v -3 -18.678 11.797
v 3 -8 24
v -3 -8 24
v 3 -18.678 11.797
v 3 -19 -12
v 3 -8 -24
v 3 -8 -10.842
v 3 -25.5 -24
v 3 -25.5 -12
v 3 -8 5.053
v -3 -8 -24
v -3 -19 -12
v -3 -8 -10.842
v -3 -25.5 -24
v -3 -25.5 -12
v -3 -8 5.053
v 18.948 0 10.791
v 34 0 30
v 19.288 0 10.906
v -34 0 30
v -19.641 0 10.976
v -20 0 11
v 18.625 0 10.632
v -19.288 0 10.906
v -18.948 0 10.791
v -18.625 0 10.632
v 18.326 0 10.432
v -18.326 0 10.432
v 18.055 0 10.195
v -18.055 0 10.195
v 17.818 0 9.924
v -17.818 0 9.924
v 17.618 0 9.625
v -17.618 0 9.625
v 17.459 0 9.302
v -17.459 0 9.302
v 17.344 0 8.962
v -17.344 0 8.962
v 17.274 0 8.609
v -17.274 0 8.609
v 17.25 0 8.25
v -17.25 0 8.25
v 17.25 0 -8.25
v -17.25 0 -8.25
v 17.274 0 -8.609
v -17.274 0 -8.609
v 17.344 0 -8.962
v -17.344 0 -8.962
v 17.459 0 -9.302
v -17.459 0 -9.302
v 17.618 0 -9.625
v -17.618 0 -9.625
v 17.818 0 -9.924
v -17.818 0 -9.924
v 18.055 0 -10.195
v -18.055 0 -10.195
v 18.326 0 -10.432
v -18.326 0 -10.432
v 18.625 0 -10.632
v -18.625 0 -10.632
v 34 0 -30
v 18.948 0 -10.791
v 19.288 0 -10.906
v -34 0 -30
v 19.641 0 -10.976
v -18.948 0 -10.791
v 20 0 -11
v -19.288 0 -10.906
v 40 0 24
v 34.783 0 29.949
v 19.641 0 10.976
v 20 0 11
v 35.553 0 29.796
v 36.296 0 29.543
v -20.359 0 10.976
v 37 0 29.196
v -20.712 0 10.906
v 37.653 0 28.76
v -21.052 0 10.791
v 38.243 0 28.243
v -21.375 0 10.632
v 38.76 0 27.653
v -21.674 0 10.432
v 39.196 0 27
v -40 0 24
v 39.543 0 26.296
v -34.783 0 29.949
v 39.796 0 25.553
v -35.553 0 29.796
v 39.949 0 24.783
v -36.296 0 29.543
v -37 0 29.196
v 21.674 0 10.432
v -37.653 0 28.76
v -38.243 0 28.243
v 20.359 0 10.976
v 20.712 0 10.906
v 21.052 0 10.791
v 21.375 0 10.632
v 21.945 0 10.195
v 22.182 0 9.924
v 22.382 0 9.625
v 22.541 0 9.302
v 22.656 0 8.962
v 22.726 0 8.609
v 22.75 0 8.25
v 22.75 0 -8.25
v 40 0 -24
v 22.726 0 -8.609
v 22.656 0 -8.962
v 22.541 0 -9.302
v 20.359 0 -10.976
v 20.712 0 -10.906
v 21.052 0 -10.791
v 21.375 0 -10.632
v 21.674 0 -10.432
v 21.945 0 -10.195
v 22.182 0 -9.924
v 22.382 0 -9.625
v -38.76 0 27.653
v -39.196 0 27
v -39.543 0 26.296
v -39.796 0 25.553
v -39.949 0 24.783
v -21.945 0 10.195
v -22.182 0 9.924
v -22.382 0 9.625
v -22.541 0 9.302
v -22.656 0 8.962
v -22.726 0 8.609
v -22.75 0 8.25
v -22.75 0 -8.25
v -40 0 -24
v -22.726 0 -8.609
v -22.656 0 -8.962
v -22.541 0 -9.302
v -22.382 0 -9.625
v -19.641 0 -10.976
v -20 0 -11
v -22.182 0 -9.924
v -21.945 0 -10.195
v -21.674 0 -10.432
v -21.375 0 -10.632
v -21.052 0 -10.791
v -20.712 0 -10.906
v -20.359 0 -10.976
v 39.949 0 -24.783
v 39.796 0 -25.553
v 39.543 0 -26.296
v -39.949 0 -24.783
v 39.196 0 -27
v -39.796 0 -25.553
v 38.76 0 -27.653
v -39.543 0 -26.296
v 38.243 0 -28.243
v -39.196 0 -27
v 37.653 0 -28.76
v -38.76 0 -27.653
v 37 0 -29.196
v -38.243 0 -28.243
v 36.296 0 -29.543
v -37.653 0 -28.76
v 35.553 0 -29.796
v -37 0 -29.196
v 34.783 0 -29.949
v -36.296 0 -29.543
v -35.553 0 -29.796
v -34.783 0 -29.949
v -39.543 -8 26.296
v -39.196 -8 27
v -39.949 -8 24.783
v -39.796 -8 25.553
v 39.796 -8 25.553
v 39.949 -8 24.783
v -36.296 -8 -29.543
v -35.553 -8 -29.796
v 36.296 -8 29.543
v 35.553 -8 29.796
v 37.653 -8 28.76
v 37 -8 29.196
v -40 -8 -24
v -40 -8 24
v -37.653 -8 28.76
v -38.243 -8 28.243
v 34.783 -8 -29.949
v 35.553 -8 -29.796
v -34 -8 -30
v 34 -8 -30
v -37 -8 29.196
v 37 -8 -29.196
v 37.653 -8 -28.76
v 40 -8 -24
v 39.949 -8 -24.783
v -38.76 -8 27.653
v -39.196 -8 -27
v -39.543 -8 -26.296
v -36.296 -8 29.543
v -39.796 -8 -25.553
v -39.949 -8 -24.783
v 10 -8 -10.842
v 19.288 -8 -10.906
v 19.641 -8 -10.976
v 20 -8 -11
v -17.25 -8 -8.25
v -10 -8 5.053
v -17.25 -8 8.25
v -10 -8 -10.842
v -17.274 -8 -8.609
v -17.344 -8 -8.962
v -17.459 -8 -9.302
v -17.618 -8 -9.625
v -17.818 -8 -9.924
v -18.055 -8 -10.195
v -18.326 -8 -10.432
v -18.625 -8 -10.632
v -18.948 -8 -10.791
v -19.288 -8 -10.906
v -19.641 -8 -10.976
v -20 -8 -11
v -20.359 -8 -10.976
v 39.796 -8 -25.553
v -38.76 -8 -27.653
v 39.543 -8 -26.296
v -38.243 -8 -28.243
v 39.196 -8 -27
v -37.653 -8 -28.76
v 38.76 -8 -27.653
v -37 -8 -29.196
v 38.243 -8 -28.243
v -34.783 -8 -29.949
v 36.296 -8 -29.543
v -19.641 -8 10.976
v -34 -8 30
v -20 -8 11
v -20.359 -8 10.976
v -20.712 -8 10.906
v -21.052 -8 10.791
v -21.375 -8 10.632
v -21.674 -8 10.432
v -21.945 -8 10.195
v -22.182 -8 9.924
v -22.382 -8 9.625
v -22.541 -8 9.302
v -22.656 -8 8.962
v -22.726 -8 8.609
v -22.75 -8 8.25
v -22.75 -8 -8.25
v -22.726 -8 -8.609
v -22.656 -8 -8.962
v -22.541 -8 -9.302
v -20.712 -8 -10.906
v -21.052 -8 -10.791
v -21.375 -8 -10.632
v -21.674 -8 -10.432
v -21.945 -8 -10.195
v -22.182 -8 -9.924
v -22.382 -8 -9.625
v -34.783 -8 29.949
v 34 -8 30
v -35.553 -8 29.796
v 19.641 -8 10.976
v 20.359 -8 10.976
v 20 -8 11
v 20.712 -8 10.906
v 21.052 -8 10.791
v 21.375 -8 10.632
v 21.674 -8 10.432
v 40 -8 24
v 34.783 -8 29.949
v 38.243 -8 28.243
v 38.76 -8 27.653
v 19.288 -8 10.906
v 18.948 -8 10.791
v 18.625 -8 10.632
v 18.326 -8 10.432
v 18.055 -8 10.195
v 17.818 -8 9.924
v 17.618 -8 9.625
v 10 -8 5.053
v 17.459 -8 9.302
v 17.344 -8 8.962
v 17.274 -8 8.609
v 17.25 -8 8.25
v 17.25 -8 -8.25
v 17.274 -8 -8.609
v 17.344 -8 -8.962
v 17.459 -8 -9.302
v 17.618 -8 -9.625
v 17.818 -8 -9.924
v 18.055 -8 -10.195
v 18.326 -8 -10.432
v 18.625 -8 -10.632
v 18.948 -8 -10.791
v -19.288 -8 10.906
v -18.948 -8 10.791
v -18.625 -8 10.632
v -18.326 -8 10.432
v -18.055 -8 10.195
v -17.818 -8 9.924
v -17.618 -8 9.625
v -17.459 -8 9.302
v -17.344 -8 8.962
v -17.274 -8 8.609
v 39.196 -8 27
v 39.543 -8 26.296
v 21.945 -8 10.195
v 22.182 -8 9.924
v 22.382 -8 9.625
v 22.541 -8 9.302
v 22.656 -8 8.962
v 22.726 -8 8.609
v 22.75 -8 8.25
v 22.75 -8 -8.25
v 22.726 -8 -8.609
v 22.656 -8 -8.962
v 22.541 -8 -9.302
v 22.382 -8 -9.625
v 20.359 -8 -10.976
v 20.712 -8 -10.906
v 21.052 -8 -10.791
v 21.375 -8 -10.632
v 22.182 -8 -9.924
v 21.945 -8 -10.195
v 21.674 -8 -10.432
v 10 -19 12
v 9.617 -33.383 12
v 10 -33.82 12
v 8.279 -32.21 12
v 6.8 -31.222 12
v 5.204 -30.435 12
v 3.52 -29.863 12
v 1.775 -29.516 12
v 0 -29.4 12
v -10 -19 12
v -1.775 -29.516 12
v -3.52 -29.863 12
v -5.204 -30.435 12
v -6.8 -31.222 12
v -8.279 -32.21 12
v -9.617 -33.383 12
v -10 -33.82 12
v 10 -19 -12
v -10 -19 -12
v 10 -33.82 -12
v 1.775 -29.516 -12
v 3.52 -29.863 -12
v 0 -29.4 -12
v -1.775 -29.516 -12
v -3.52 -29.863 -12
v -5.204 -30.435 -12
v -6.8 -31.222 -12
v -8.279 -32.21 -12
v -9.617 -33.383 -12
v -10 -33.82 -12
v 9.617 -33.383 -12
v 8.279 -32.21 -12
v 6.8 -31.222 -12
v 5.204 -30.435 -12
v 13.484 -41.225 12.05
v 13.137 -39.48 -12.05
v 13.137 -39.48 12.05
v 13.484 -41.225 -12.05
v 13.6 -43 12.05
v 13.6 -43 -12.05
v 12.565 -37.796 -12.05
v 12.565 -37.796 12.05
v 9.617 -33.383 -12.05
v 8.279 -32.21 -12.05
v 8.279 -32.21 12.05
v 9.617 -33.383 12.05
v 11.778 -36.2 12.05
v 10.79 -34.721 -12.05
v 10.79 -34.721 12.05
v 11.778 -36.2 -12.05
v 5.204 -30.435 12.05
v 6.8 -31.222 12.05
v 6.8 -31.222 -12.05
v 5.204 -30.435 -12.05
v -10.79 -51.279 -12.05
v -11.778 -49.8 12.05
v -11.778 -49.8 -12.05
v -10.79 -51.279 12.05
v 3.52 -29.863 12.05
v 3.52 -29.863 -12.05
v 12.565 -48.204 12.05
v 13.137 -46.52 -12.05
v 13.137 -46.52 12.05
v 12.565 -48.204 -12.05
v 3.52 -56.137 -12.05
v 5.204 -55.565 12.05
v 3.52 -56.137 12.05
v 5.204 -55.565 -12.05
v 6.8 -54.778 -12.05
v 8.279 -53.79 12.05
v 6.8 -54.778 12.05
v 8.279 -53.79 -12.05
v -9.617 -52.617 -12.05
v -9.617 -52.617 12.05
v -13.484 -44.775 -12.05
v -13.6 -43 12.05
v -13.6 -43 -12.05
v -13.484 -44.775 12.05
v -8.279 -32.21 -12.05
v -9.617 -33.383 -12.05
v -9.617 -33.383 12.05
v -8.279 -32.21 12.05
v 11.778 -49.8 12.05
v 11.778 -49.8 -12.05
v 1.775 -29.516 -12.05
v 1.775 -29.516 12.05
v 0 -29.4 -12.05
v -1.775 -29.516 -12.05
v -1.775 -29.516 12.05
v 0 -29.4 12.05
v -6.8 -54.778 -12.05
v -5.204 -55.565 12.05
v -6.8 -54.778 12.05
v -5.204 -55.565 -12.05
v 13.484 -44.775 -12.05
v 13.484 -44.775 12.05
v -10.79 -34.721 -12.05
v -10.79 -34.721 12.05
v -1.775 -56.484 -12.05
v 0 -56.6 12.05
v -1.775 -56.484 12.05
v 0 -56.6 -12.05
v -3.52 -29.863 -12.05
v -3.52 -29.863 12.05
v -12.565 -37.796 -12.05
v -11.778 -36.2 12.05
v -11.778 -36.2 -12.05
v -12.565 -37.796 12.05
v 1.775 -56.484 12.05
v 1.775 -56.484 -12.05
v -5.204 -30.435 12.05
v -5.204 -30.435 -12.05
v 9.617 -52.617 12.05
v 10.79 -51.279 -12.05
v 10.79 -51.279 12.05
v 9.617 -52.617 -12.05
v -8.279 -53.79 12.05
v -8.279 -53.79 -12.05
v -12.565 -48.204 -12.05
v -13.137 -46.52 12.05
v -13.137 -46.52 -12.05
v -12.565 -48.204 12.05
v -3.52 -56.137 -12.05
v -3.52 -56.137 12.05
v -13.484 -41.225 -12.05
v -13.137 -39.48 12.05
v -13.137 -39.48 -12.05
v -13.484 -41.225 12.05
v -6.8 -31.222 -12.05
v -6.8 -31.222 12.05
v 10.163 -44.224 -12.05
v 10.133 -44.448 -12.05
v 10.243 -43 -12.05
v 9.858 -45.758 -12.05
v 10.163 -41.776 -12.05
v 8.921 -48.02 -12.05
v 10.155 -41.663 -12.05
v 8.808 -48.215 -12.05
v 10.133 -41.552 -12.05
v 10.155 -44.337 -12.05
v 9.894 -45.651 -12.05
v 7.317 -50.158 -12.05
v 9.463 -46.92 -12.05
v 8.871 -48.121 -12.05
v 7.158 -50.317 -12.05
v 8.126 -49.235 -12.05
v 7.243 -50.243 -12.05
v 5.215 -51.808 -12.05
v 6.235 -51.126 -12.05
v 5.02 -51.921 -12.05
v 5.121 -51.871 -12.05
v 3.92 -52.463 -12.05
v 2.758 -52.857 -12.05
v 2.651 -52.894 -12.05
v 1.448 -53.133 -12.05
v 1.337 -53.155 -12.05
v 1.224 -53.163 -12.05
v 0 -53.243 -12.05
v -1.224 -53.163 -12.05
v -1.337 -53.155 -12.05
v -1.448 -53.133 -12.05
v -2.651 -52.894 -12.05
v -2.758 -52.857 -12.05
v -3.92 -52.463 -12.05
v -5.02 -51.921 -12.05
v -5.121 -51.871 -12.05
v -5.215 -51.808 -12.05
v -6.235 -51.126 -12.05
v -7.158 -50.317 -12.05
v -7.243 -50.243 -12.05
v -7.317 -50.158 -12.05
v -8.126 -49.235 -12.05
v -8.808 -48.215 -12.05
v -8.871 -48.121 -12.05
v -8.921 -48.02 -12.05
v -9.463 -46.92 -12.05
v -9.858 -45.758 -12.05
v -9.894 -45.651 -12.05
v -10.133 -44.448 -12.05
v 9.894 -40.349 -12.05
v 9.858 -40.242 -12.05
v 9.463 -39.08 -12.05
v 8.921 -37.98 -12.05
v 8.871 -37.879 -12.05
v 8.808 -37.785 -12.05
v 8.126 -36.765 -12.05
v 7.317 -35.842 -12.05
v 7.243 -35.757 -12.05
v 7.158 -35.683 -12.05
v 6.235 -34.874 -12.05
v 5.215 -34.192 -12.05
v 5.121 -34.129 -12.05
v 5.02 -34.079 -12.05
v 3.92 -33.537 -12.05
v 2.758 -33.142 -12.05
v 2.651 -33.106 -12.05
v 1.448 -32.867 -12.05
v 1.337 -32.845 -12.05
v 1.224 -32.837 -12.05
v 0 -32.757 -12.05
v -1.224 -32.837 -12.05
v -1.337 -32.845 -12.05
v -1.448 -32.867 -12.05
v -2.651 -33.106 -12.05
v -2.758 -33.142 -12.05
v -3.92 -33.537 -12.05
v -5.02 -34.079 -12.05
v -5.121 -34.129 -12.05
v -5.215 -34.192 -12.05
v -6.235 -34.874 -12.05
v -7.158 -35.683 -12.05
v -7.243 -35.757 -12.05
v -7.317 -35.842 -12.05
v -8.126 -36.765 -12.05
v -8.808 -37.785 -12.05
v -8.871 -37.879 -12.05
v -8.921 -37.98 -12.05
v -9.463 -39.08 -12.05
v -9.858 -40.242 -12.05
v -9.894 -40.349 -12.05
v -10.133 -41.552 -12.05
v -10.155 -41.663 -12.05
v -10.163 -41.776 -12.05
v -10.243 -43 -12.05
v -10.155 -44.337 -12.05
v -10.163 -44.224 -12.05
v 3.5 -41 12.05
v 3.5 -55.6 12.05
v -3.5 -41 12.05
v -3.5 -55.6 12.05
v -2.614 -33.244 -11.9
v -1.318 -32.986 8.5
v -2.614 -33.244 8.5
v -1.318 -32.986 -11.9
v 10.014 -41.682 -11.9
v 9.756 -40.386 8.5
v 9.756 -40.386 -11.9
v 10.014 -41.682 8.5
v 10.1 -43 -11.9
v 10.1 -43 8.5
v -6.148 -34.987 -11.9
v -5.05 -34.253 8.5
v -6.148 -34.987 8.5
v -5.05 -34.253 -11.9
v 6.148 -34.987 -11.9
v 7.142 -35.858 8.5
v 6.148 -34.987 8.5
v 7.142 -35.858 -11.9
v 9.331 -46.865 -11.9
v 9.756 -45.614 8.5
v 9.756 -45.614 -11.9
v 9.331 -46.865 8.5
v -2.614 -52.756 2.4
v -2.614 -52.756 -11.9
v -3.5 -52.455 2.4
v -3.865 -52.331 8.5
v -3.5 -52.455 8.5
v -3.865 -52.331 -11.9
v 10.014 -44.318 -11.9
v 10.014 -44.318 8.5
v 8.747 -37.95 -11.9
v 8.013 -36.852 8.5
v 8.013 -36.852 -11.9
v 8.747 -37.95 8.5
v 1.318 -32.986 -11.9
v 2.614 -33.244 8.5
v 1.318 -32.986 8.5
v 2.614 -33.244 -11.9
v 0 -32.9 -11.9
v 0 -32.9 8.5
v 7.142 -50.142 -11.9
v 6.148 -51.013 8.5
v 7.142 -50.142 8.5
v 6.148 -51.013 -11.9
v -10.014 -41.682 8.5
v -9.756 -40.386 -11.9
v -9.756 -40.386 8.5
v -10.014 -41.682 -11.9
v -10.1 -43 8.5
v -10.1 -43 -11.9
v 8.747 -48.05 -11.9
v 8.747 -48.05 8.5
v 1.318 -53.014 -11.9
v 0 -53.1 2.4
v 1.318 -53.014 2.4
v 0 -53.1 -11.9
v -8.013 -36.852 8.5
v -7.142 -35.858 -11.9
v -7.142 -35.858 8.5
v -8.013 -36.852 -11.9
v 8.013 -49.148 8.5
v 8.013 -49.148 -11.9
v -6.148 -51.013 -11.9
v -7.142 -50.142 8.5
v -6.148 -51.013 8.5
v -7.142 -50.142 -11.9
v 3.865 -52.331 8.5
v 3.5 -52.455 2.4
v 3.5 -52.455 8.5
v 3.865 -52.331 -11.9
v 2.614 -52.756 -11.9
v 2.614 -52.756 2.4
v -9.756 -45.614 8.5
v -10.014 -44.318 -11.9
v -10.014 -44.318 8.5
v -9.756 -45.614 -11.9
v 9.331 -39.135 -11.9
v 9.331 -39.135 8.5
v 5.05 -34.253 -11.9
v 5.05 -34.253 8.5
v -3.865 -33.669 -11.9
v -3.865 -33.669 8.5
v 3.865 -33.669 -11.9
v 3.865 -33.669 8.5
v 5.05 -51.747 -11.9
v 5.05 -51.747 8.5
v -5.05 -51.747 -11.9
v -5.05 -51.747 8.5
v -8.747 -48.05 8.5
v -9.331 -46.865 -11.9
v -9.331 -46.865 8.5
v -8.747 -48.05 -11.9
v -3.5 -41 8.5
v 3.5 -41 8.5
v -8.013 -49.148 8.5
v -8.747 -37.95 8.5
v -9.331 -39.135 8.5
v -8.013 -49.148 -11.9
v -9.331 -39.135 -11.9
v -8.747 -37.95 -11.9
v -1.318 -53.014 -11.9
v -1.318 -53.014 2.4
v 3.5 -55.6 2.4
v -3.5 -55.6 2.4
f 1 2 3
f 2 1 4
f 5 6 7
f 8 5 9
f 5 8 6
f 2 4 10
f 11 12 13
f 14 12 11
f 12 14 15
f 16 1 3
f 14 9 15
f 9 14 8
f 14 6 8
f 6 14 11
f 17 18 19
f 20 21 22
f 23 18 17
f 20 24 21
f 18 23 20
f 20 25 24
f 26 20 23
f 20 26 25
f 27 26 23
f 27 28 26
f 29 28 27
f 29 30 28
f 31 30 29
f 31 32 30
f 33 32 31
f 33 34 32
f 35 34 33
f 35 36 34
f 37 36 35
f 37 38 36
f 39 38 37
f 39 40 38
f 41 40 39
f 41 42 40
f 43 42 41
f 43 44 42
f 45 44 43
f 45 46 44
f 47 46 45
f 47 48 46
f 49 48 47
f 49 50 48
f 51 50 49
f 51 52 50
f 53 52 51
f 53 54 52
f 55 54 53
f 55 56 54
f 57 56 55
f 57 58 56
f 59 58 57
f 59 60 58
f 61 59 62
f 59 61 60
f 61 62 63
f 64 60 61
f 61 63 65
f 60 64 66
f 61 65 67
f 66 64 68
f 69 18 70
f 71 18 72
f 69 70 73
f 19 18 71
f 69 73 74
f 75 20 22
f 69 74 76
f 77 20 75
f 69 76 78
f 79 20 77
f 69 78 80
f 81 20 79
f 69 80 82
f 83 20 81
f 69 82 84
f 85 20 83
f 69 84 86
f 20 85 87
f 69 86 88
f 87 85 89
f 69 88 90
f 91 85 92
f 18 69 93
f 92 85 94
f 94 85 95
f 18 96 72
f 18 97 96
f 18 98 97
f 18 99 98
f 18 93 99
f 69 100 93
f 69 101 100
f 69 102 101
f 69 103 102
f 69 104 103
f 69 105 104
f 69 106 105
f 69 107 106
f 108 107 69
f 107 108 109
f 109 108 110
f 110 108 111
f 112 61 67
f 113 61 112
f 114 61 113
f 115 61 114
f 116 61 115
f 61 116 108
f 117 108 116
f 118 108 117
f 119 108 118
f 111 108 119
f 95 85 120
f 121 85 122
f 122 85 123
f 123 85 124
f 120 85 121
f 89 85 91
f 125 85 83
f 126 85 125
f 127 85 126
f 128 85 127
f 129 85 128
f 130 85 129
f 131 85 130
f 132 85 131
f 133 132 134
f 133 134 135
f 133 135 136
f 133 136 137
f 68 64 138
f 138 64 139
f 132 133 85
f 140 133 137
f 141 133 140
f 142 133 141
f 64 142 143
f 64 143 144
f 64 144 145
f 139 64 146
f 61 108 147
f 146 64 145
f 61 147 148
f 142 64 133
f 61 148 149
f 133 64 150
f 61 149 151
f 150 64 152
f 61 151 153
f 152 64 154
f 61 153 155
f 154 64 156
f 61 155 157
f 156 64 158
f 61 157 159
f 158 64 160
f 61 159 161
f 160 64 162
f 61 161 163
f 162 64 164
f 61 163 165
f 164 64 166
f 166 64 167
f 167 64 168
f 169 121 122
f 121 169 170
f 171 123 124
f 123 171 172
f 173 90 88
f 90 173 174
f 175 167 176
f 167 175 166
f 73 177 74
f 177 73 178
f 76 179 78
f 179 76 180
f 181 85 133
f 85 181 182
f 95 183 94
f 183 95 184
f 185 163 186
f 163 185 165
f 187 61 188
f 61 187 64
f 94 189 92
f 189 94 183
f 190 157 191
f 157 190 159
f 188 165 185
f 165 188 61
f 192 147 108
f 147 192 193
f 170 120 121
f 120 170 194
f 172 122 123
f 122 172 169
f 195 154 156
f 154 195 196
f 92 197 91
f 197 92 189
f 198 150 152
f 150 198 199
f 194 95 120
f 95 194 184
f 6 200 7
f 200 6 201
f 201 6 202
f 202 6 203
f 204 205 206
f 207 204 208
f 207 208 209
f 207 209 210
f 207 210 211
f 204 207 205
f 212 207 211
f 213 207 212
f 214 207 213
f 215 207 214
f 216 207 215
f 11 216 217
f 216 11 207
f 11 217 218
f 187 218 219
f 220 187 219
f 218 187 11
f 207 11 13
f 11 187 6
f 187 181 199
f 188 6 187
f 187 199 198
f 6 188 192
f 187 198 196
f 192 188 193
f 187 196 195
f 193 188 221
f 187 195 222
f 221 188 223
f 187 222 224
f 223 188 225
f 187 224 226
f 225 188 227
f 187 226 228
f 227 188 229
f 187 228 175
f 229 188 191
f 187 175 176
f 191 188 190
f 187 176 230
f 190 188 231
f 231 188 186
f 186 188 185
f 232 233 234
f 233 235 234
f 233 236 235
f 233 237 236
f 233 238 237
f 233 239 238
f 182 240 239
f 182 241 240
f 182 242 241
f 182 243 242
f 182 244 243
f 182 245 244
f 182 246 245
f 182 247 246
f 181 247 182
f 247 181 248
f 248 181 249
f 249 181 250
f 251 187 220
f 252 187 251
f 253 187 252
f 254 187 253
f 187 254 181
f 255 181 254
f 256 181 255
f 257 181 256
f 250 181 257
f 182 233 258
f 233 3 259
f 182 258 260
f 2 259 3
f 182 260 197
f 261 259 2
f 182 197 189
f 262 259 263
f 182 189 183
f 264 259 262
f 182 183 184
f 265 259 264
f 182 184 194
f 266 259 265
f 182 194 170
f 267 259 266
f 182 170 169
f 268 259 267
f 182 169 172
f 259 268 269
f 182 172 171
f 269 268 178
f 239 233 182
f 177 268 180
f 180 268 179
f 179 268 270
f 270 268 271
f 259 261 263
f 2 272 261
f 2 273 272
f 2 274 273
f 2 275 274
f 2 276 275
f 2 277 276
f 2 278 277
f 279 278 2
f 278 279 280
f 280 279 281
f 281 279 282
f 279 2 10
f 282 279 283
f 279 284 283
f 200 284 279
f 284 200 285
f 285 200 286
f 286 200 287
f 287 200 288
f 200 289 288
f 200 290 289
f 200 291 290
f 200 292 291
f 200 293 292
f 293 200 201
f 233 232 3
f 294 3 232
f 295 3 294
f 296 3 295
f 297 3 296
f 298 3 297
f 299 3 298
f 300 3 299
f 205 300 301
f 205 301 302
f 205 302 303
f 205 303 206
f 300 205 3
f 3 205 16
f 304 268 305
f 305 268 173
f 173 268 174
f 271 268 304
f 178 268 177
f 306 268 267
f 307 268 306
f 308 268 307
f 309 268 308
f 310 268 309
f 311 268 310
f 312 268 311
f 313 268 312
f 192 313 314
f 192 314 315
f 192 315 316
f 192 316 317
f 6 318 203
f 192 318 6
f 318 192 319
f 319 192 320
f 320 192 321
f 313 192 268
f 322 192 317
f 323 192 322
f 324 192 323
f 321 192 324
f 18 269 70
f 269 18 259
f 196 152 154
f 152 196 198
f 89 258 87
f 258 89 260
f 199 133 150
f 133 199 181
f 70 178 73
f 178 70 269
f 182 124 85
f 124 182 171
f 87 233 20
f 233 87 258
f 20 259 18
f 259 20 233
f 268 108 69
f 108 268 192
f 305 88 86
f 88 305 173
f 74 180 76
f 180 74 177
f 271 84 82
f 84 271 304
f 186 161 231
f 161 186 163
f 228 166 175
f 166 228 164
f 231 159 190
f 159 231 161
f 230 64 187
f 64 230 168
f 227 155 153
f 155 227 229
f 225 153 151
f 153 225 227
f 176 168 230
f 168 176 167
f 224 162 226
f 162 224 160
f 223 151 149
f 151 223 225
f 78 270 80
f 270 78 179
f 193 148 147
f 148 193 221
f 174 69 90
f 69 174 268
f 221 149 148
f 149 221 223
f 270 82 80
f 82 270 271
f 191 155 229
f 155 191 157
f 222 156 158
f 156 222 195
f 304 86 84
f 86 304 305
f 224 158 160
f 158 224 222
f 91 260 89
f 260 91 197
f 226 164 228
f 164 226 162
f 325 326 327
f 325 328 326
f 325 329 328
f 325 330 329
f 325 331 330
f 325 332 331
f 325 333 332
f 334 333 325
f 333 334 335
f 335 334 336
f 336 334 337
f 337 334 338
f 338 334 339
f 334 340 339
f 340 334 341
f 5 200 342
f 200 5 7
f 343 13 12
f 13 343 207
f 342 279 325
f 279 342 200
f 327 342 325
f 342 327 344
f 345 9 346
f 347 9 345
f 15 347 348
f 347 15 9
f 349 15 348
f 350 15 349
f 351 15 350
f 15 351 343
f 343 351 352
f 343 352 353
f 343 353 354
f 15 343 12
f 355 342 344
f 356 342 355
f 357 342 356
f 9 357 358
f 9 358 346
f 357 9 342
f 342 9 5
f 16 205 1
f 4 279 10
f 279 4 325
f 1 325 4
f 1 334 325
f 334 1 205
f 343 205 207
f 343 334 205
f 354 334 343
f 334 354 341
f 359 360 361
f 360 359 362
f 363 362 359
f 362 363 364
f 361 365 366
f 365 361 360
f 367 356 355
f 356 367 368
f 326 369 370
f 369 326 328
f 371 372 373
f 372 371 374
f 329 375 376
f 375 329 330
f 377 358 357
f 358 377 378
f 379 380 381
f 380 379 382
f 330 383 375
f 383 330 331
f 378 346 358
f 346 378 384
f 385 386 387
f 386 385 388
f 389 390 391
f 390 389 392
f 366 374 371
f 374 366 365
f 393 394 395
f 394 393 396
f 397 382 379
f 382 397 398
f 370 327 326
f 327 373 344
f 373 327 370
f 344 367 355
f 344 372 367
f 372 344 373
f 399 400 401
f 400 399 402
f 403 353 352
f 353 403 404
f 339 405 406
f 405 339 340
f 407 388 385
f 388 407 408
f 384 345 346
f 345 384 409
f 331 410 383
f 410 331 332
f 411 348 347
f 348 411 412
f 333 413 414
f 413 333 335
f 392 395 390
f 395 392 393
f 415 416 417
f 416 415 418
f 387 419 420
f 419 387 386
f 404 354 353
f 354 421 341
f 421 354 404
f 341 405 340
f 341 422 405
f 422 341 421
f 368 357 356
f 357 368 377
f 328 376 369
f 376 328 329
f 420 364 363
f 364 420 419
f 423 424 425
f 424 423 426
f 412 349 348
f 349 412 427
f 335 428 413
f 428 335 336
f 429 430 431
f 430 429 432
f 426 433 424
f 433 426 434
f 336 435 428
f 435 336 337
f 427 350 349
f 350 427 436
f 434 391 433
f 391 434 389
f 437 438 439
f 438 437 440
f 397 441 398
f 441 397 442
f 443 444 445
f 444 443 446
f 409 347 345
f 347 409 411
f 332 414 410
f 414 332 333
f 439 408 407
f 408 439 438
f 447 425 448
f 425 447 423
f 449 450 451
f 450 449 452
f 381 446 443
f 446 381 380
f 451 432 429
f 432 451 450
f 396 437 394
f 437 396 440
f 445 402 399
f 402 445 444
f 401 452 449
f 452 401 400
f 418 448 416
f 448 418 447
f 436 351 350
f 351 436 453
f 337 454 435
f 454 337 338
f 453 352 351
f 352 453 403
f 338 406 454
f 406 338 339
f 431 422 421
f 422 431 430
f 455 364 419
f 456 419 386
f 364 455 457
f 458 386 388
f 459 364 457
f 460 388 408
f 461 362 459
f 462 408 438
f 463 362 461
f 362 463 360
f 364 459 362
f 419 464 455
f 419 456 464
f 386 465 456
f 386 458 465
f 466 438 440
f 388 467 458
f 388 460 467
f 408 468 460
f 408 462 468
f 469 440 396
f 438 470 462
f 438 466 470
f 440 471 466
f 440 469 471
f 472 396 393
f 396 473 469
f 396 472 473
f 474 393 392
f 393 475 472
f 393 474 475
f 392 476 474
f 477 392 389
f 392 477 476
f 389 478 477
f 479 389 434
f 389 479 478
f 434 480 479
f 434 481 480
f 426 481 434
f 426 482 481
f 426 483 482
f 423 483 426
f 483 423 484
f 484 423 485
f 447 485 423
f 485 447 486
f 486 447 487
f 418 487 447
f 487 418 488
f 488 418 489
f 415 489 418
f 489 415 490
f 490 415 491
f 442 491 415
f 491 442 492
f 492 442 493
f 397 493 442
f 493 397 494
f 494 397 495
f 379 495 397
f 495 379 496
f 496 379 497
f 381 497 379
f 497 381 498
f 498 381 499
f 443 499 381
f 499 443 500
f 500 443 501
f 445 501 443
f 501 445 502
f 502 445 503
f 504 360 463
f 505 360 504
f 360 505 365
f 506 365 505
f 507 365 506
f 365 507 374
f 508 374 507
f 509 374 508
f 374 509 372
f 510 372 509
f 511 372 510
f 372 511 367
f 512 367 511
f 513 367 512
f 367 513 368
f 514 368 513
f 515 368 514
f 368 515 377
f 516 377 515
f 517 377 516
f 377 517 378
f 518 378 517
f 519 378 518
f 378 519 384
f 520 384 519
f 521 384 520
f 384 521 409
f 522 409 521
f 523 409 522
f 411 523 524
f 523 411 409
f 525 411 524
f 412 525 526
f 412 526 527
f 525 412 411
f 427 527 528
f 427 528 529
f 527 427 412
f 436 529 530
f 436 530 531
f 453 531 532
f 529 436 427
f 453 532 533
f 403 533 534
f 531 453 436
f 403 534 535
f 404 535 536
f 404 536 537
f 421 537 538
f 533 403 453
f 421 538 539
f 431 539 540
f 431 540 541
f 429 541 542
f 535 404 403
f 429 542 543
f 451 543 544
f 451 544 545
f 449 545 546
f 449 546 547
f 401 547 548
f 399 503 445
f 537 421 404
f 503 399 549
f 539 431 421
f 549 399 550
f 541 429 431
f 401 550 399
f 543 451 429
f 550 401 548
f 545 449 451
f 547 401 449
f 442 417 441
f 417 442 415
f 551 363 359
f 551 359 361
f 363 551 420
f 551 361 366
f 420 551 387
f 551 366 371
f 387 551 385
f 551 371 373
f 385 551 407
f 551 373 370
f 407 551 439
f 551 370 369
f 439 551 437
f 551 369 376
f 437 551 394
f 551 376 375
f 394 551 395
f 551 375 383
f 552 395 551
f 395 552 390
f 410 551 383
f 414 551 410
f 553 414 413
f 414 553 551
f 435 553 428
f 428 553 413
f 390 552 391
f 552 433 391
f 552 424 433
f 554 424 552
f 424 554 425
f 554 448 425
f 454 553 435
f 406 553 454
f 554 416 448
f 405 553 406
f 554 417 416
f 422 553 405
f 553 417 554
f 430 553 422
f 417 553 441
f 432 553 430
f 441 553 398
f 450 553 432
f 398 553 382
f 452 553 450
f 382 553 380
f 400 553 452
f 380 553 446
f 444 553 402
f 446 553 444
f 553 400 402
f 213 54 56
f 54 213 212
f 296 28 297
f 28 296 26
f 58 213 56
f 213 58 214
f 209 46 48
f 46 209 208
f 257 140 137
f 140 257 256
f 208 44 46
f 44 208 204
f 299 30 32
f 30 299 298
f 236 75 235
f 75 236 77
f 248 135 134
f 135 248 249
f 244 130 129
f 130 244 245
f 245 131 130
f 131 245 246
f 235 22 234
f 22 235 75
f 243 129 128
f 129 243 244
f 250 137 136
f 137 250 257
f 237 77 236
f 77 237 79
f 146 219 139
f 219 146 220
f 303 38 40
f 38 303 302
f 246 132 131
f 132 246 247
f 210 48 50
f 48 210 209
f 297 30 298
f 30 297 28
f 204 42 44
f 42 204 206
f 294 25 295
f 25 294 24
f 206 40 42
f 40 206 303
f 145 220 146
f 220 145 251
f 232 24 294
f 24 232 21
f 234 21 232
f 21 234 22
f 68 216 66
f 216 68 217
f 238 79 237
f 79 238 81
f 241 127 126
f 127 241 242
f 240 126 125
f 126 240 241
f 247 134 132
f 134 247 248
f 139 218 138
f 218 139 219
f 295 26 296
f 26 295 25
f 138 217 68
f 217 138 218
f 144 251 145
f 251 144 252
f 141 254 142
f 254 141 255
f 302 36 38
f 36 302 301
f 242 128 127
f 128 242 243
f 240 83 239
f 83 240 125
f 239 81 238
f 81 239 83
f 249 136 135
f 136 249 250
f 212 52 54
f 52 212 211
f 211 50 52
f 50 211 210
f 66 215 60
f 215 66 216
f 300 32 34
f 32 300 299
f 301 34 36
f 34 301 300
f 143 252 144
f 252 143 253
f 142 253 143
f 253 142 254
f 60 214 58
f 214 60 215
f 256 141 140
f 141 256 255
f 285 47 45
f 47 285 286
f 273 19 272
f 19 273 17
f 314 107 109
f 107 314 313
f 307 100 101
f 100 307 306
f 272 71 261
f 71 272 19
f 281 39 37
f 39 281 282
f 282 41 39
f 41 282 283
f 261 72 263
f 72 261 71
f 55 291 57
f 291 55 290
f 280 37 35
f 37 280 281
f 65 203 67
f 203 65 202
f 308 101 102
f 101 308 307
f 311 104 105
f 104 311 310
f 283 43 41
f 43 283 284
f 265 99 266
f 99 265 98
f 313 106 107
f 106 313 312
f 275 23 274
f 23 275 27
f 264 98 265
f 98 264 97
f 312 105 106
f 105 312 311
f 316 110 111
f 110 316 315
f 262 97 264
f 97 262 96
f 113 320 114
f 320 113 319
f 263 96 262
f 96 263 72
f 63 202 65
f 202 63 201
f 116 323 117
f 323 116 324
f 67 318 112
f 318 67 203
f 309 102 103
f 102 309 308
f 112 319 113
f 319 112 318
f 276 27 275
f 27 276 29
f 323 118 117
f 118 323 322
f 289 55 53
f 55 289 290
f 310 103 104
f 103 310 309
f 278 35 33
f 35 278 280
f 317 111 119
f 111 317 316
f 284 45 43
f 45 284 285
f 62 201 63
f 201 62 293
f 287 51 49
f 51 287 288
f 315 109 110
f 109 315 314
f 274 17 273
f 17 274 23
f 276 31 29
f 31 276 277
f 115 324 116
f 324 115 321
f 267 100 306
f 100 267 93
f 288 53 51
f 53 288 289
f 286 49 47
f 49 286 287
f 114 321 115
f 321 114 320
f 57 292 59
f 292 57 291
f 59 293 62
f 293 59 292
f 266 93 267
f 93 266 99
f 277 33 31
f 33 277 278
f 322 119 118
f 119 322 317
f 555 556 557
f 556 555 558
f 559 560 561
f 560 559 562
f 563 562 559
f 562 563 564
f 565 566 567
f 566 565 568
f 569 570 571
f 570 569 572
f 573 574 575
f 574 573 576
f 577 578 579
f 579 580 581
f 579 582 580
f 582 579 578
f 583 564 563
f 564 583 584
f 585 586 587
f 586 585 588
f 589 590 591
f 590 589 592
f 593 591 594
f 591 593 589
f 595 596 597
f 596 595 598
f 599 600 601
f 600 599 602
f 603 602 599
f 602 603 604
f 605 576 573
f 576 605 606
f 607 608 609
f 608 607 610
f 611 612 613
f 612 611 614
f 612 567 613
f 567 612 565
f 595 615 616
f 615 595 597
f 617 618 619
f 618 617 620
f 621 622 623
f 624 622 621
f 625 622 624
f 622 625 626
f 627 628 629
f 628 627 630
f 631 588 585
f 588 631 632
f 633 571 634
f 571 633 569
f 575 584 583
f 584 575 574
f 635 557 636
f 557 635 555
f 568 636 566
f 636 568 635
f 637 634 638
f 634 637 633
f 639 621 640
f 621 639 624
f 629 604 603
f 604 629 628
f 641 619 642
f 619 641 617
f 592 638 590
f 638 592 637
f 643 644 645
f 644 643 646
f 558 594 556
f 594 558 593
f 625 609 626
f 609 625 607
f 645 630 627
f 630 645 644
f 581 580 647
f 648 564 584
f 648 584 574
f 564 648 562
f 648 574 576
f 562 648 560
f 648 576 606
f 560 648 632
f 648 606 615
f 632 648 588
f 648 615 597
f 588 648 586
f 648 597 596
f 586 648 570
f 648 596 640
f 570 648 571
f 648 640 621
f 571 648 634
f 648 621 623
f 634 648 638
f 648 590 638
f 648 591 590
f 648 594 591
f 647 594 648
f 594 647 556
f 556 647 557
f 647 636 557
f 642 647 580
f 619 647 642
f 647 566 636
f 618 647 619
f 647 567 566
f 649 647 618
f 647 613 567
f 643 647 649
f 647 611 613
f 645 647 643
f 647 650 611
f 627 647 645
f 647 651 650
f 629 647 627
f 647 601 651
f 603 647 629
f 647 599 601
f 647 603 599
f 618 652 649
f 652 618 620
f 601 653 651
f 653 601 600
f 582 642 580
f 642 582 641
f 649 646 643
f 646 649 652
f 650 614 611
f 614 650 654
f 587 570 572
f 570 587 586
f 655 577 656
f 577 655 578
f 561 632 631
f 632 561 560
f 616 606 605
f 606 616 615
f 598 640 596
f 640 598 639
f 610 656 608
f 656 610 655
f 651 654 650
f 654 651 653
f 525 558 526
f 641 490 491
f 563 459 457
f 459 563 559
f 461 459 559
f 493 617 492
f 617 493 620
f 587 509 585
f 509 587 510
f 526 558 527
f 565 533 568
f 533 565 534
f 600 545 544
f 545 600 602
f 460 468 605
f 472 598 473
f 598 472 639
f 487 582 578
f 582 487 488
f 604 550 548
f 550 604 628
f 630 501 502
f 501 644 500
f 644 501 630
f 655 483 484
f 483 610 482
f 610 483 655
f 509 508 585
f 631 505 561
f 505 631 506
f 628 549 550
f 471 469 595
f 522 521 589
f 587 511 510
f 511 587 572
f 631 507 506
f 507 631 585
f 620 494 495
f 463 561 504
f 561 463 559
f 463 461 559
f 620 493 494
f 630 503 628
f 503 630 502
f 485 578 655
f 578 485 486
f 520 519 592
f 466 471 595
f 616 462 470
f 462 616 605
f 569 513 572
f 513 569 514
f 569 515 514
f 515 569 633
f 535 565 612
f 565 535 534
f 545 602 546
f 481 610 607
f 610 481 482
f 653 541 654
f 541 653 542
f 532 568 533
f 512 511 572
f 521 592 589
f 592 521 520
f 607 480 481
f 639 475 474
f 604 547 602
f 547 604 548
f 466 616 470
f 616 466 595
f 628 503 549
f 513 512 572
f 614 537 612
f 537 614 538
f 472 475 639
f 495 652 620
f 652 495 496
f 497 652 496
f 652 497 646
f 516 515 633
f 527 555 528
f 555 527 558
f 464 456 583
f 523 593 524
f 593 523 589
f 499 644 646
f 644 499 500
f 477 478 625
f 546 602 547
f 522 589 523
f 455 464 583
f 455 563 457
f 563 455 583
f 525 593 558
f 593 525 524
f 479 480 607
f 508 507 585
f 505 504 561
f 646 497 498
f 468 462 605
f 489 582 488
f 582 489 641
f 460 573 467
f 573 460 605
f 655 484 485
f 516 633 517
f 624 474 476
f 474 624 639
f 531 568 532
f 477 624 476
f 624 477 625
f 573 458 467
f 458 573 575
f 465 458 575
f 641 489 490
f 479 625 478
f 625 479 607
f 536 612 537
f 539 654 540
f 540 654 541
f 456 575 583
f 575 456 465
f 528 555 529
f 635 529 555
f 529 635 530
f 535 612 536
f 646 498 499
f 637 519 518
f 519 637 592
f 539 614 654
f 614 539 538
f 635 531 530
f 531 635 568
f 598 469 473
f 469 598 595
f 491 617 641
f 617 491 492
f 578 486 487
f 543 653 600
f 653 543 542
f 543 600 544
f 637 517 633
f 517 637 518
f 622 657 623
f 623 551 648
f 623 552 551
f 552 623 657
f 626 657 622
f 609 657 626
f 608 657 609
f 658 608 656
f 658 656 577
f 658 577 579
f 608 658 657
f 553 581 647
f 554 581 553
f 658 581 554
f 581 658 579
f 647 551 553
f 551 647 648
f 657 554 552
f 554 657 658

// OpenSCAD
// ╔══════════════════════════════════════════════════════════╗
// ║  JSN-SR04T Sensor-Wandhalterung                         ║
// ║  Montage an Betonwand mit Langlöchern                   ║
// ║  Sensor zeigt nach UNTEN in die Zisterne               ║
// ║  Tobias Meier · admin@secutobs.com · v0.5.0            ║
// ╠══════════════════════════════════════════════════════════╣
// ║  DRUCKEN:                                              ║
// ║  1. F6 → rendern  2. File → Export → STL              ║
// ║  Material:  PETG (feuchtigkeitsbeständig, empfohlen)   ║
// ║            oder PLA für trockene Umgebung              ║
// ║  Schichthöhe: 0.2mm | Wandlinien: 4 | Infill: 40%    ║
// ║  Support:  NEIN – druckfreundlich ausgerichtet         ║
// ║  Ausrichtung: Rückwand flach auf Druckbett             ║
// ╠══════════════════════════════════════════════════════════╣
// ║  MONTAGE:                                              ║
// ║  1. Halterung an Betonwand halten, Position markieren  ║
// ║  2. 2× Dübel setzen (6mm Universaldübel)              ║
// ║  3. Schraube M4×30 oder 4mm Holzschraube verwenden    ║
// ║  4. Langlöcher erlauben ±15mm vertikale Justage       ║
// ║  5. Sensor von unten in Aufnahme drücken (Pressfit)   ║
// ║  6. Sensor schwenkbar: Winkel 0°-30° einstellbar      ║
// ╚══════════════════════════════════════════════════════════╝

// ── Sensor JSN-SR04T ─────────────────────────────────────
SENS_D   = 19.4;    // angepasst    // Sensorkopf Durchmesser
SENS_SP  =  0.4;    // angepasst    // Pressfit-Spiel
SENS_T   = 20.0;    // angepasst    // Einbautiefe Sensor
WAND_S   =  3.5;    // Wandstärke Sensoraufnahme

// ── Wandplatte ───────────────────────────────────────────
WP_B     = 80.0;    // Breite Wandplatte
WP_H     = 60.0;    // Höhe Wandplatte
WP_T     =  8.0;    // Tiefe/Dicke Wandplatte

// ── Langlöcher ───────────────────────────────────────────
LL_B     =  5.5;    // Breite Langloch (für M4/4mm Schraube)
LL_H     = 22.0;    // Höhe Langloch  (±11mm Justage)
LL_X     = 20.0;    // Abstand Langloch von Mitte (je Seite)
LL_Y     =  0.0;    // Vertikale Position (Mitte der Platte)
LL_SR    =  LL_B/2; // Eckenradius Langloch

// ── Sensorarm ────────────────────────────────────────────
ARM_L    = 35.0;    // Armlänge (Abstand Wand → Sensormitte)
ARM_B    = 20.0;    // Armbreite
ARM_T    = 24.0;    // angepasst für 20 mm Sensorhöhe    // Armtiefe

// ── Sensor-Aufnahme ──────────────────────────────────────
SENS_R   = SENS_D/2 + SENS_SP;
AUFN_RA  = SENS_R + WAND_S;

// ── Versteifungsrippe ────────────────────────────────────
RIP_T    =  6.0;    // Rippendicke
RIP_H    = 30.0;    // Rippenhöhe

// Korrigierte Version:
// - ursprüngliche Form bleibt erhalten
// - Sensor auf 19.4 x 20 mm angepasst
// - Langlöcher wieder vorhanden
// - mittlerer Rückseiten-Überstand entfernt
// - keine Rückseiten-Versenkungen / Gewichtsfenster
// - Langlöcher vollständig durch die Platte verlängert
$fn = 48;

// ════════════════════════════════════════════════════════
//  WANDHALTERUNG – alles in einem Teil
// ════════════════════════════════════════════════════════
difference() {
    union() {

        // ── 1. WANDPLATTE ────────────────────────────────
        hull() {
            for(x = [-WP_B/2+6, WP_B/2-6])
            for(z = [-WP_H/2+6, WP_H/2-6])
                translate([x, 0, z])
                    rotate([90,0,0])
                        cylinder(r=6, h=WP_T);
        }

        // ── 2. SENSORARM (nach vorne und unten) ──────────
        // Arm geht von Mitte der Platte nach vorne
        hull() {
            // Verbindung zur Platte (unten-mitte)
            translate([-ARM_B/2, -ARM_T, -10])
                cube([ARM_B, ARM_T, 10]);
            // Arm-Ende (weiter vorne)
            translate([-ARM_B/2, -(WP_T + ARM_L), -ARM_T/2])
                cube([ARM_B, ARM_T, ARM_T]);
        }

        // ── 3. SENSOR-AUFNAHME (am Arm-Ende, Sensor nach unten) ──
        translate([0, -(WP_T + ARM_L), 0])
            cylinder(h=ARM_T+0.1, r=AUFN_RA, center=true);

        // ── 4. VERSTEIFUNGSRIPPEN ────────────────────────
        // intersection() begrenzt Rippen auf y<=0 → Rückwand bleibt flach
        intersection() {
            union() {
                hull(){
                    translate([-RIP_T/2, -WP_T, WP_H/2-6-RIP_H])
                        cube([RIP_T, RIP_T, RIP_H]);
                    translate([-RIP_T/2, -(WP_T+ARM_L*0.6), -8])
                        cube([RIP_T, RIP_T, 8]);
                }
                hull(){
                    translate([-RIP_T/2, -WP_T, -WP_H/2+6])
                        cube([RIP_T, WP_T+2, RIP_H]);
                    translate([-RIP_T/2, -(WP_T+ARM_L*0.5), -WP_H/2+6])
                        cube([RIP_T, 6, 16]);
                }
            }
            // Nur Bereich VOR der Rückwand (y <= 0)
            translate([-500, -500, -500]) cube([1000, 500, 1000]);
        }
    }

    // ── BOHRUNGEN ────────────────────────────────────────

    // Langloch Links
    translate([-LL_X, -WP_T/2, LL_Y])
        rotate([90,0,0]) {
            hull() {
                translate([0,  LL_H/2-LL_SR, 0]) cylinder(r=LL_SR, h=WP_T+20, center=true);
                translate([0, -LL_H/2+LL_SR, 0]) cylinder(r=LL_SR, h=WP_T+20, center=true);
            }
        }

    // Langloch Rechts
    translate([LL_X, -WP_T/2, LL_Y])
        rotate([90,0,0]) {
            hull() {
                translate([0,  LL_H/2-LL_SR, 0]) cylinder(r=LL_SR, h=WP_T+20, center=true);
                translate([0, -LL_H/2+LL_SR, 0]) cylinder(r=LL_SR, h=WP_T+20, center=true);
            }
        }

    // Sensor-Bohrung (von unten, Pressfit)
    translate([0, -(WP_T + ARM_L), -(ARM_T/2)-0.1])
        cylinder(h=ARM_T-WAND_S+0.1, r=SENS_R);

    // Einführphase Sensor
    translate([0, -(WP_T + ARM_L), -(ARM_T/2)-2])
        cylinder(h=2.1, r1=SENS_R+2, r2=SENS_R);

    // Kabel-Nut (Kabel kommt seitlich raus und nach oben)
    translate([-3.5, -(WP_T + ARM_L + AUFN_RA - 1), ARM_T*0.1])
        cube([7, AUFN_RA+1, ARM_T]);
}

// ════════════════════════════════════════════════════════
//  LANGLOCH-ERKLÄRUNG
// ════════════════════════════════════════════════════════
// Langlöcher: 5.5mm × 22mm
// → Schraube M4 oder Dübel 6mm + Schraube 4mm
// → ±11mm Verstellbereich vertikal
// → Schraubenkopf versenkt (bündig mit Wandplatte)
//
// SENSOR-AUSRICHTUNG:
// → Sensor drückt von UNTEN in die Aufnahme
// → Durch Verschieben der Halterung an der Wand
//   kann der Sensor exakt ausgerichtet werden
// → Für horizontale Justage: Dübellöcher entsprechend setzen
